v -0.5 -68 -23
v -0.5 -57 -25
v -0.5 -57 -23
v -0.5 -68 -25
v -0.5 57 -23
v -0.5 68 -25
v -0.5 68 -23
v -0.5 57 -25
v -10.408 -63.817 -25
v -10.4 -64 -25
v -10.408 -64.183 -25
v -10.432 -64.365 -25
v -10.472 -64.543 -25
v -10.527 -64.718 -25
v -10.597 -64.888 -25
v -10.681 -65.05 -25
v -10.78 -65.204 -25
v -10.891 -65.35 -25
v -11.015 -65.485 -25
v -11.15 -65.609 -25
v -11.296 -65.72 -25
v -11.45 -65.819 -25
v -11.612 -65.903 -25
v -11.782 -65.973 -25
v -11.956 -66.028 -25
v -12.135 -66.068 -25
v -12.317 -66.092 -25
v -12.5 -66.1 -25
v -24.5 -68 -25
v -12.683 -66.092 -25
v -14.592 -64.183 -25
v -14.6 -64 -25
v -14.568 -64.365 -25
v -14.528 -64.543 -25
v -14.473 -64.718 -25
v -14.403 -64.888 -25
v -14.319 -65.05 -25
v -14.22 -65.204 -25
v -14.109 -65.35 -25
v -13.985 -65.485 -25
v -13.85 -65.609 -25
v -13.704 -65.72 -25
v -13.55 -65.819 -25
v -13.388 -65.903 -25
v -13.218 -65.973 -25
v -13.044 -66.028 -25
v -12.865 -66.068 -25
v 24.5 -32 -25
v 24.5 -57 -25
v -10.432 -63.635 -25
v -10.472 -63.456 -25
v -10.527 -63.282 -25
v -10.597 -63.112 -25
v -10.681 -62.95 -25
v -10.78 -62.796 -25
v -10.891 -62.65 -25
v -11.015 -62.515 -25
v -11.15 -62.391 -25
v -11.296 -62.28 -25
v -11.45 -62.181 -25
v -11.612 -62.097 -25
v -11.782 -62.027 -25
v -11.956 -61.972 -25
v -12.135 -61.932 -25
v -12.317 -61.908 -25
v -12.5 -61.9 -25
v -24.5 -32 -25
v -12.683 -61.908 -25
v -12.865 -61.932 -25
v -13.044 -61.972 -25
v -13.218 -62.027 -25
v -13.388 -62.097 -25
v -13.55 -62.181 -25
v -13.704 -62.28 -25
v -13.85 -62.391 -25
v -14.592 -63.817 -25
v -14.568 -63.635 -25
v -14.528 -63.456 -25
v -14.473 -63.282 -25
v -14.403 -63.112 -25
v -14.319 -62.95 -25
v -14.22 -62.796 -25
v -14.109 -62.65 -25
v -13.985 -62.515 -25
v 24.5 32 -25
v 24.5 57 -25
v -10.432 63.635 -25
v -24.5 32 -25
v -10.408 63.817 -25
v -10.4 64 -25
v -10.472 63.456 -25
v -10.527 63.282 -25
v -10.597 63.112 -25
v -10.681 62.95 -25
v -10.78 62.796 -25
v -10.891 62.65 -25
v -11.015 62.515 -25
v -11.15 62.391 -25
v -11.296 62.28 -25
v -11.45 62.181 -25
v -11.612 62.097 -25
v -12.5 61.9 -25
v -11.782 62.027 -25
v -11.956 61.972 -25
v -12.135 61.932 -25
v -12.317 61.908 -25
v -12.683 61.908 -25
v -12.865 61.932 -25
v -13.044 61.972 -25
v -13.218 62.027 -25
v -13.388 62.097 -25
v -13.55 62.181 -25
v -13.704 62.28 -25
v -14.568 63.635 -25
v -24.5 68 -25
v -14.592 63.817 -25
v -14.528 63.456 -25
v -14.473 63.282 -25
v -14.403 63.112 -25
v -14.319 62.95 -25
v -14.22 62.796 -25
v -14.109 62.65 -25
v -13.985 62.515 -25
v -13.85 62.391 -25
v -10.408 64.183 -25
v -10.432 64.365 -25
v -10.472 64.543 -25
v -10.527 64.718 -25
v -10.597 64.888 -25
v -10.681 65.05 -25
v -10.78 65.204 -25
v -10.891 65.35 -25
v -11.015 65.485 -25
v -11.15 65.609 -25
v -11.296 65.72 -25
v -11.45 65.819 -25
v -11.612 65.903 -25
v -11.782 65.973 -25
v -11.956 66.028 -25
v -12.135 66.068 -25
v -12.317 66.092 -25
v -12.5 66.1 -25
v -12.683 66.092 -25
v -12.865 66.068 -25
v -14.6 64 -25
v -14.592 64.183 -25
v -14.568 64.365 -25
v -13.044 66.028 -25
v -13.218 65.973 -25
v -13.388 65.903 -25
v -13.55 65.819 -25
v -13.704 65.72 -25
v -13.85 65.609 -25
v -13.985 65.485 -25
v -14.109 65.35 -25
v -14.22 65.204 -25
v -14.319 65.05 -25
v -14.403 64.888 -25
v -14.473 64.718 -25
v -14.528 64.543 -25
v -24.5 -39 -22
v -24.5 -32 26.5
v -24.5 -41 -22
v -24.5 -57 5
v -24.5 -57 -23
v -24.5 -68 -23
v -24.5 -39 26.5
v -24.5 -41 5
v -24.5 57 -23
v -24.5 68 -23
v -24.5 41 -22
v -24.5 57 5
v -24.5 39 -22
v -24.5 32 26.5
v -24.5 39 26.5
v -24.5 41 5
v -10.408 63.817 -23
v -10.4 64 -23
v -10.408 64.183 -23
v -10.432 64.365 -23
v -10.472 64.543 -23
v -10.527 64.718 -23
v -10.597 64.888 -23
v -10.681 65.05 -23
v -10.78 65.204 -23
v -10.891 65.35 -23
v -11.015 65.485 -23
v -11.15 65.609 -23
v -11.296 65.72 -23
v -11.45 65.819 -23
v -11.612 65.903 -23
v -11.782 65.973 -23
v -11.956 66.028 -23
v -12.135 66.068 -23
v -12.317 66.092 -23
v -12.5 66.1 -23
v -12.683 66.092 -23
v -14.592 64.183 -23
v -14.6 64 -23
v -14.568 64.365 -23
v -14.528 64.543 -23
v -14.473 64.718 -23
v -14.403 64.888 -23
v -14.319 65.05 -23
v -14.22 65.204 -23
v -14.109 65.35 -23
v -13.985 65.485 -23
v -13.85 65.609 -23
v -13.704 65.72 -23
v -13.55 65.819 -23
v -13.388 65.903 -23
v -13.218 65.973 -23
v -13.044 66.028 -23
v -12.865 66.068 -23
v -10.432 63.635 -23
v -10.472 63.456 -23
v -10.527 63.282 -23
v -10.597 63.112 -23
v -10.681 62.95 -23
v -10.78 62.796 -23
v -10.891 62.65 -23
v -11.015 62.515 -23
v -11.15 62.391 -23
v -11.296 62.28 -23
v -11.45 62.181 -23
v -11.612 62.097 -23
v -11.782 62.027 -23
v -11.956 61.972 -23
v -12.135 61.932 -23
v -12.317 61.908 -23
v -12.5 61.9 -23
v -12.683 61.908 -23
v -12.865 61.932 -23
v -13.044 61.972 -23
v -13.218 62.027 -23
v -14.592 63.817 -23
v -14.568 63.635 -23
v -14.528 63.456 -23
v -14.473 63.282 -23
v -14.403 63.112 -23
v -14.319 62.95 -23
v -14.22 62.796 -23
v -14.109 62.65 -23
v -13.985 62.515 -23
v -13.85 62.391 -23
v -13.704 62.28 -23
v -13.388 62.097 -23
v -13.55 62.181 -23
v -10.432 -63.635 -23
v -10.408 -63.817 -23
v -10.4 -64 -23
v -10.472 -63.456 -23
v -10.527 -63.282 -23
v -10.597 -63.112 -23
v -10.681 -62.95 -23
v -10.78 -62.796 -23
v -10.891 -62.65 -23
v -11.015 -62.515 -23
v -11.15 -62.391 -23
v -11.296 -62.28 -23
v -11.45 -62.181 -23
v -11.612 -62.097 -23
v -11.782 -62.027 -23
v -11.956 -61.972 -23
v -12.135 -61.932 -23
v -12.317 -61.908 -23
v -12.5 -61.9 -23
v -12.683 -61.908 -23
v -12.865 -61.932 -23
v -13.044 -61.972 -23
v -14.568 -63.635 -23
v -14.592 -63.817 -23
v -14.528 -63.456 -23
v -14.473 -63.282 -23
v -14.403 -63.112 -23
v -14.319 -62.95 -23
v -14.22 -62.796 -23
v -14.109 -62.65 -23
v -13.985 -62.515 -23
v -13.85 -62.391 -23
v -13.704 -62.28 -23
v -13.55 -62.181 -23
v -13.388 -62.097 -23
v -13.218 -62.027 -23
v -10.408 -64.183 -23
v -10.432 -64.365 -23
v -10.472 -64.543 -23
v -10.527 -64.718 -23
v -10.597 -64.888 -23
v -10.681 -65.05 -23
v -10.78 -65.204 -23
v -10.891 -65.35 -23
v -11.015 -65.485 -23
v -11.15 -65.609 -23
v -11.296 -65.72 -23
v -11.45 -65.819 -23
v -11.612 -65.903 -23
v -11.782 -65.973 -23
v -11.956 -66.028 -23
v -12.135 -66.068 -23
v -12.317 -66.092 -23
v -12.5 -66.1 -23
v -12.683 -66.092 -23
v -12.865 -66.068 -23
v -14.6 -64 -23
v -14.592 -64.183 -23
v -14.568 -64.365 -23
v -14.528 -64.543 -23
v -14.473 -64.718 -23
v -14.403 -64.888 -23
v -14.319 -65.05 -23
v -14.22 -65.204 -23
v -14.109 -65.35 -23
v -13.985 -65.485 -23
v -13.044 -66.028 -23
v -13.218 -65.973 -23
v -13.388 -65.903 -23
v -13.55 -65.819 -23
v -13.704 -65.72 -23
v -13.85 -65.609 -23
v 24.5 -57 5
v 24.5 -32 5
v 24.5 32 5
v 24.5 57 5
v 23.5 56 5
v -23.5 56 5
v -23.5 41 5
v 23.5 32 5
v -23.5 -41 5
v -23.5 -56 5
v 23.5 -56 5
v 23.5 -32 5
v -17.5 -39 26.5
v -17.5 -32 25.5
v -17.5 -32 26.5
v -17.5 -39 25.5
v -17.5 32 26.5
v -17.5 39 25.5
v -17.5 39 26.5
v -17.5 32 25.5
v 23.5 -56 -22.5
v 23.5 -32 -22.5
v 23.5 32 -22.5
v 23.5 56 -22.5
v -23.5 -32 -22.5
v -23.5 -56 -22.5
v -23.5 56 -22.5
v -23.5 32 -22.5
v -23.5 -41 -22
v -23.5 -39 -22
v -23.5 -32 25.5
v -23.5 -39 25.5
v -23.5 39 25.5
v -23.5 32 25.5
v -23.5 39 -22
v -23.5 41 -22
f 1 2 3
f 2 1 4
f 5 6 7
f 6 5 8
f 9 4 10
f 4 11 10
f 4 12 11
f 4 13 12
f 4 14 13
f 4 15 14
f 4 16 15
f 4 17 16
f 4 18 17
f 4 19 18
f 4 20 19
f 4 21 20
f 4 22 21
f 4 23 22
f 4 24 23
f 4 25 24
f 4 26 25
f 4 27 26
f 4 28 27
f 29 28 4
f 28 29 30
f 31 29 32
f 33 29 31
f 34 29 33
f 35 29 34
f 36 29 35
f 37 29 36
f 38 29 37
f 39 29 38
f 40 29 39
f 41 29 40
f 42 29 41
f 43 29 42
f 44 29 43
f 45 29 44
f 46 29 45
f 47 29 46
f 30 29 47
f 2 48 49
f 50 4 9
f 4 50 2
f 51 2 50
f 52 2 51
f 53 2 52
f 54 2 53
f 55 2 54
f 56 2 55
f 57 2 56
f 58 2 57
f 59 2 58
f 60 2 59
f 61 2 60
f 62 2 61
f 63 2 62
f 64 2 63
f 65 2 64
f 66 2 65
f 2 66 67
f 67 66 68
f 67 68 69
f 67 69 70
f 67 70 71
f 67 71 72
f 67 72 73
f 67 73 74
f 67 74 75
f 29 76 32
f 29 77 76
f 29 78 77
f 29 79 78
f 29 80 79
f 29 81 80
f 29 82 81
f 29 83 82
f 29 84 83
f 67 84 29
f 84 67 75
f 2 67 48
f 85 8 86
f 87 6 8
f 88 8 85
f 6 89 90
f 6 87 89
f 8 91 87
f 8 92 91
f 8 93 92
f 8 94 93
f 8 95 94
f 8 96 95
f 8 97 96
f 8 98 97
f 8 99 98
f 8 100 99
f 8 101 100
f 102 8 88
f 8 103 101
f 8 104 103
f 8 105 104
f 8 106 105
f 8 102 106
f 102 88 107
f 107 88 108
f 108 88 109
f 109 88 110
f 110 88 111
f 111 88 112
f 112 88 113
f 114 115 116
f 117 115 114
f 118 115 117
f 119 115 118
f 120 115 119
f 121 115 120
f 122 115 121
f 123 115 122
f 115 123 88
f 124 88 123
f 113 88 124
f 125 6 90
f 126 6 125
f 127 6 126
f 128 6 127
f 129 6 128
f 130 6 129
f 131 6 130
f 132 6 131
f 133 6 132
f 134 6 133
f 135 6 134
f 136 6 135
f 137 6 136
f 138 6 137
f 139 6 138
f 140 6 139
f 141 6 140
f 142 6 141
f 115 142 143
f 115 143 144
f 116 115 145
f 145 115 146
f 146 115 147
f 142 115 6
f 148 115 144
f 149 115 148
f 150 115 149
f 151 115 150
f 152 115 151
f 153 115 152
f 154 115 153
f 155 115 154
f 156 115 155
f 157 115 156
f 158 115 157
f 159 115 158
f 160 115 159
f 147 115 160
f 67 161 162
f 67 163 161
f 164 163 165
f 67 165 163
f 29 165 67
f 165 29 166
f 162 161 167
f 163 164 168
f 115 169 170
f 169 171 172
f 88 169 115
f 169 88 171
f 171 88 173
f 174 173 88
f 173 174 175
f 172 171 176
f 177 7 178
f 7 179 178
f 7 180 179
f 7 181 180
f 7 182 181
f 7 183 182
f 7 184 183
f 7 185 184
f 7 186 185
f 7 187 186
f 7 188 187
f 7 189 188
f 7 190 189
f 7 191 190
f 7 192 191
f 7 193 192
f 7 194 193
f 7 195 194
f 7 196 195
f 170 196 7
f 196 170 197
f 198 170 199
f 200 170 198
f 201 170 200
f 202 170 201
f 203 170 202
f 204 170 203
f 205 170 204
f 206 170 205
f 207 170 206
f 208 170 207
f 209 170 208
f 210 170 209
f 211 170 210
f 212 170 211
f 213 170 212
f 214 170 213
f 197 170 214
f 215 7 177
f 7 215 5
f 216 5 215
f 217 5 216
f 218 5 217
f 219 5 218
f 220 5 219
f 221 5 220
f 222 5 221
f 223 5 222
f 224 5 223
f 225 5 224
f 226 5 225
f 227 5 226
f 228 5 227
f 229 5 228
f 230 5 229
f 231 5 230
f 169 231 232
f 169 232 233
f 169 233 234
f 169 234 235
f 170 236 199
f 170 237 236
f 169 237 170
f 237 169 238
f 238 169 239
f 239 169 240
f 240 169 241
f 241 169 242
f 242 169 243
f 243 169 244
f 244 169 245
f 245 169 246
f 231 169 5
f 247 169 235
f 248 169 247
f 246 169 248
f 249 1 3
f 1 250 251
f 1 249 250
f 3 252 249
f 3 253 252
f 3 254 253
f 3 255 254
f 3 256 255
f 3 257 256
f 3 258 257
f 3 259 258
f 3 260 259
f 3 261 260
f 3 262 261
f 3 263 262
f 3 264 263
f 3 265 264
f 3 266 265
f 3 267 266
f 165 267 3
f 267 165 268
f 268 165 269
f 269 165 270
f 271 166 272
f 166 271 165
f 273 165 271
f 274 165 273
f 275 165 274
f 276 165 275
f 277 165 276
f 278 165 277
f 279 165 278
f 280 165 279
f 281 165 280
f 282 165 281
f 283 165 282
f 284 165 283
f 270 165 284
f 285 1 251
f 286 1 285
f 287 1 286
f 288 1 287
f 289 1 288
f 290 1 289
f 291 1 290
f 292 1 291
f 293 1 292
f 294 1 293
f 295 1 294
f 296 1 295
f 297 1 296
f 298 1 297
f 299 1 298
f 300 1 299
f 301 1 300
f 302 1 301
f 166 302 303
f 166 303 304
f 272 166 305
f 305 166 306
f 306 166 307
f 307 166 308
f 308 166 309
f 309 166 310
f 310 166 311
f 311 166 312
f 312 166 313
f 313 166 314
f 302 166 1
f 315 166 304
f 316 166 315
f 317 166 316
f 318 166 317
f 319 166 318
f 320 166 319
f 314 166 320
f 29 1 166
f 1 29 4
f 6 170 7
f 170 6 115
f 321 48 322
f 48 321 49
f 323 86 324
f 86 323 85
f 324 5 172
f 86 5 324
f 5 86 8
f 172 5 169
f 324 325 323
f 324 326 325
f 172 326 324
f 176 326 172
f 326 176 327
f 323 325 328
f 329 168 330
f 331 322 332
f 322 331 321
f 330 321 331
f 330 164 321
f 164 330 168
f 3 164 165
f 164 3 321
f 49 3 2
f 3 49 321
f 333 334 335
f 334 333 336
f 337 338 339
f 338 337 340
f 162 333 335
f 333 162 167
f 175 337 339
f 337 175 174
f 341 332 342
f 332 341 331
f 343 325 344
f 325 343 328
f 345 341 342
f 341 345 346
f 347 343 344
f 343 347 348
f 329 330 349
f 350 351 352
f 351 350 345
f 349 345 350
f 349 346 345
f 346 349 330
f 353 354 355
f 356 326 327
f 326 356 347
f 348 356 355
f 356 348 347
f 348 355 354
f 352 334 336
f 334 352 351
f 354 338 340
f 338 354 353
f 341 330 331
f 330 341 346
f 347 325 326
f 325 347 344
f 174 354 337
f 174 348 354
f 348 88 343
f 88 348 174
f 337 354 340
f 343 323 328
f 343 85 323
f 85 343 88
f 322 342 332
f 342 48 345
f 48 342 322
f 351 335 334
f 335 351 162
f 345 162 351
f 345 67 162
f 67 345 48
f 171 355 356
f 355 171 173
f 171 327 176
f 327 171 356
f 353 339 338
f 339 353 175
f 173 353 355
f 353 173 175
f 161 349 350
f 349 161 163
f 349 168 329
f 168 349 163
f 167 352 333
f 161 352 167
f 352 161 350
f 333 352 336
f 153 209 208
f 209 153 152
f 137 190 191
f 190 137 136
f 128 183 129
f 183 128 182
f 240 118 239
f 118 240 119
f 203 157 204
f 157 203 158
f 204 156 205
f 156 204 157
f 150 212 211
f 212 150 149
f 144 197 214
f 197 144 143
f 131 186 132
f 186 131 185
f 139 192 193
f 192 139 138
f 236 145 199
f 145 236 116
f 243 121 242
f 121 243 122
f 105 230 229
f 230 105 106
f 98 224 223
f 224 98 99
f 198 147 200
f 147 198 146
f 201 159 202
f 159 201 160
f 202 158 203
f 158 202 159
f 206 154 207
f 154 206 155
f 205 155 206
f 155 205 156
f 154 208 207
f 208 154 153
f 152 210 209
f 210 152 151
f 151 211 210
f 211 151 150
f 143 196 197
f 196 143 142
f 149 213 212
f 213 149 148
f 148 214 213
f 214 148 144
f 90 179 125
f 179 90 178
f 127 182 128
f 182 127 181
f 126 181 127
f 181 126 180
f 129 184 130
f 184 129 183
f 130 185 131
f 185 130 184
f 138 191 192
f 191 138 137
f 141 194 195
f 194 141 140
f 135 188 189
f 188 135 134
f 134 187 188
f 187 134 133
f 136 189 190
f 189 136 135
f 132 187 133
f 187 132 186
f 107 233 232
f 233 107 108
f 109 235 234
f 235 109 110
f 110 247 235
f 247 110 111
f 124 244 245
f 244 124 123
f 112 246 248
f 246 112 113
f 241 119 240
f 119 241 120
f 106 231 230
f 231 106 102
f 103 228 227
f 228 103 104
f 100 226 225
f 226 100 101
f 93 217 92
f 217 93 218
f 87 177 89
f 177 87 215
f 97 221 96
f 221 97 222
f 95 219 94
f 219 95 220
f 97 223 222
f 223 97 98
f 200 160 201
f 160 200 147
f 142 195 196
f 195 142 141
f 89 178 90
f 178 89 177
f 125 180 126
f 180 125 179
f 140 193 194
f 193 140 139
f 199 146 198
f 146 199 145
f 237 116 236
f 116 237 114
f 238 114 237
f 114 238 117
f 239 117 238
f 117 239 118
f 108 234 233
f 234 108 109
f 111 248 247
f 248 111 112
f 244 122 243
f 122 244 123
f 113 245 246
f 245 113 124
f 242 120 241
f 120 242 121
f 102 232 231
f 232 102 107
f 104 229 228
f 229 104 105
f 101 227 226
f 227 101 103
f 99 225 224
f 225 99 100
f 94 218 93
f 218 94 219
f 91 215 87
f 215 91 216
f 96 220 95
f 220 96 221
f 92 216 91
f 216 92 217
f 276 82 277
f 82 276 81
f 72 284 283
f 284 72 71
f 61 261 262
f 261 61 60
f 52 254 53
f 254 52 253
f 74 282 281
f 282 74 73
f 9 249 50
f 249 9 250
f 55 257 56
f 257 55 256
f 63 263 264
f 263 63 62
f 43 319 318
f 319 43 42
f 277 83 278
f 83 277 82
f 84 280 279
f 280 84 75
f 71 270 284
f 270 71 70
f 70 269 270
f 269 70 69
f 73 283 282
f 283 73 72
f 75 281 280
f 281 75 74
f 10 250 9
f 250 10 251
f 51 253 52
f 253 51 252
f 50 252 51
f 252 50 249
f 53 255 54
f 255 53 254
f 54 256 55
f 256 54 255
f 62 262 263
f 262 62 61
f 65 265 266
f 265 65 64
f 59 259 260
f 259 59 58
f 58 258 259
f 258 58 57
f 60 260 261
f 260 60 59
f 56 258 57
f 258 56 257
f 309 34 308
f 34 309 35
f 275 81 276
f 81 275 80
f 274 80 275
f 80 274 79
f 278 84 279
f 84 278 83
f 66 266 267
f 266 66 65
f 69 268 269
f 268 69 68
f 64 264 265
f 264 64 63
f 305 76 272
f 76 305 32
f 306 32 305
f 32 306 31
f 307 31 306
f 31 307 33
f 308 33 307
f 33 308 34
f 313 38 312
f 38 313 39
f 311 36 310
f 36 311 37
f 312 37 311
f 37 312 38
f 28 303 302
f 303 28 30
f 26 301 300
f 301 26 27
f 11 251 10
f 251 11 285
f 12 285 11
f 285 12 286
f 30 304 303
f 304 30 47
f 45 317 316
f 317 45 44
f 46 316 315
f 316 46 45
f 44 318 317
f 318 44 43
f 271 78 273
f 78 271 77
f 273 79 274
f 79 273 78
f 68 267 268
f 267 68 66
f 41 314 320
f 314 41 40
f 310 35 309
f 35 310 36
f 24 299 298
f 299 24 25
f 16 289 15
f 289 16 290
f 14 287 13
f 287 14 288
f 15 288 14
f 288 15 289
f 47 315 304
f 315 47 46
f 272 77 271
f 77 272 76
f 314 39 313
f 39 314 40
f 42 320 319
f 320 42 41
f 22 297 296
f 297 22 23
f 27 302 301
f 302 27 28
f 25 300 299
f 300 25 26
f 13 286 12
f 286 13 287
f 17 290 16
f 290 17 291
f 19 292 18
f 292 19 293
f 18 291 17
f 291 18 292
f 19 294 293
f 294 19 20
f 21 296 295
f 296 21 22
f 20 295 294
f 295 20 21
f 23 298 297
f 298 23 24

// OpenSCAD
gridThickness = 1;
gridDepth = 24;

gridLength = 200;
gridSideLength = 32;
gridSpacing = gridSideLength*cos(30);

perimiterWidth = 2*gridSpacing;
perimiterHeight = 3 * gridSideLength;
perimiterThickness = 2;



holeDepth = 4;
holeOffset = 64;
holeRadius = 2.1;
holeFacets = 72;

rotate([0,180,0])
difference() {
    union() {

        translate([12.5,0,24])
            cube([24,136,2],center=true);
        translate([0,0,10])
            cube([49,114,30],center=true);
        
        translate([21,0,-6.5])
            cube([7,80,40],center=true);
    }
        translate([0,0,-1.5])
        color("green")
            cube([47,112,48], center=true);


    cube([50,64,100], center=true);
    translate([10,40,-28])
        cube([50,2,100], center=true);
    translate([10,-40,-28])
        cube([50,2,100], center=true);
    
    translate([12.5,holeOffset,24])
        cylinder(r=holeRadius,h=holeDepth,
                 center=true, $fn=holeFacets);
    translate([12.5,-holeOffset,24])
        cylinder(r=holeRadius,h=holeDepth,
                 center=true, $fn=holeFacets);
            
}



module Holes() {
    translate([holeOffset,0,0])
        cylinder(r=holeRadius,h=holeDepth,
                 center=true, $fn=holeFacets);
    translate([-holeOffset,0,0])
        cylinder(r=holeRadius,h=holeDepth,
                 center=true, $fn=holeFacets);
    translate([0,holeOffset,0])
        cylinder(r=holeRadius,h=holeDepth,
                 center=true, $fn=holeFacets);
    translate([0,-holeOffset,0])
        cylinder(r=holeRadius,h=holeDepth,
                 center=true, $fn=holeFacets);
}
